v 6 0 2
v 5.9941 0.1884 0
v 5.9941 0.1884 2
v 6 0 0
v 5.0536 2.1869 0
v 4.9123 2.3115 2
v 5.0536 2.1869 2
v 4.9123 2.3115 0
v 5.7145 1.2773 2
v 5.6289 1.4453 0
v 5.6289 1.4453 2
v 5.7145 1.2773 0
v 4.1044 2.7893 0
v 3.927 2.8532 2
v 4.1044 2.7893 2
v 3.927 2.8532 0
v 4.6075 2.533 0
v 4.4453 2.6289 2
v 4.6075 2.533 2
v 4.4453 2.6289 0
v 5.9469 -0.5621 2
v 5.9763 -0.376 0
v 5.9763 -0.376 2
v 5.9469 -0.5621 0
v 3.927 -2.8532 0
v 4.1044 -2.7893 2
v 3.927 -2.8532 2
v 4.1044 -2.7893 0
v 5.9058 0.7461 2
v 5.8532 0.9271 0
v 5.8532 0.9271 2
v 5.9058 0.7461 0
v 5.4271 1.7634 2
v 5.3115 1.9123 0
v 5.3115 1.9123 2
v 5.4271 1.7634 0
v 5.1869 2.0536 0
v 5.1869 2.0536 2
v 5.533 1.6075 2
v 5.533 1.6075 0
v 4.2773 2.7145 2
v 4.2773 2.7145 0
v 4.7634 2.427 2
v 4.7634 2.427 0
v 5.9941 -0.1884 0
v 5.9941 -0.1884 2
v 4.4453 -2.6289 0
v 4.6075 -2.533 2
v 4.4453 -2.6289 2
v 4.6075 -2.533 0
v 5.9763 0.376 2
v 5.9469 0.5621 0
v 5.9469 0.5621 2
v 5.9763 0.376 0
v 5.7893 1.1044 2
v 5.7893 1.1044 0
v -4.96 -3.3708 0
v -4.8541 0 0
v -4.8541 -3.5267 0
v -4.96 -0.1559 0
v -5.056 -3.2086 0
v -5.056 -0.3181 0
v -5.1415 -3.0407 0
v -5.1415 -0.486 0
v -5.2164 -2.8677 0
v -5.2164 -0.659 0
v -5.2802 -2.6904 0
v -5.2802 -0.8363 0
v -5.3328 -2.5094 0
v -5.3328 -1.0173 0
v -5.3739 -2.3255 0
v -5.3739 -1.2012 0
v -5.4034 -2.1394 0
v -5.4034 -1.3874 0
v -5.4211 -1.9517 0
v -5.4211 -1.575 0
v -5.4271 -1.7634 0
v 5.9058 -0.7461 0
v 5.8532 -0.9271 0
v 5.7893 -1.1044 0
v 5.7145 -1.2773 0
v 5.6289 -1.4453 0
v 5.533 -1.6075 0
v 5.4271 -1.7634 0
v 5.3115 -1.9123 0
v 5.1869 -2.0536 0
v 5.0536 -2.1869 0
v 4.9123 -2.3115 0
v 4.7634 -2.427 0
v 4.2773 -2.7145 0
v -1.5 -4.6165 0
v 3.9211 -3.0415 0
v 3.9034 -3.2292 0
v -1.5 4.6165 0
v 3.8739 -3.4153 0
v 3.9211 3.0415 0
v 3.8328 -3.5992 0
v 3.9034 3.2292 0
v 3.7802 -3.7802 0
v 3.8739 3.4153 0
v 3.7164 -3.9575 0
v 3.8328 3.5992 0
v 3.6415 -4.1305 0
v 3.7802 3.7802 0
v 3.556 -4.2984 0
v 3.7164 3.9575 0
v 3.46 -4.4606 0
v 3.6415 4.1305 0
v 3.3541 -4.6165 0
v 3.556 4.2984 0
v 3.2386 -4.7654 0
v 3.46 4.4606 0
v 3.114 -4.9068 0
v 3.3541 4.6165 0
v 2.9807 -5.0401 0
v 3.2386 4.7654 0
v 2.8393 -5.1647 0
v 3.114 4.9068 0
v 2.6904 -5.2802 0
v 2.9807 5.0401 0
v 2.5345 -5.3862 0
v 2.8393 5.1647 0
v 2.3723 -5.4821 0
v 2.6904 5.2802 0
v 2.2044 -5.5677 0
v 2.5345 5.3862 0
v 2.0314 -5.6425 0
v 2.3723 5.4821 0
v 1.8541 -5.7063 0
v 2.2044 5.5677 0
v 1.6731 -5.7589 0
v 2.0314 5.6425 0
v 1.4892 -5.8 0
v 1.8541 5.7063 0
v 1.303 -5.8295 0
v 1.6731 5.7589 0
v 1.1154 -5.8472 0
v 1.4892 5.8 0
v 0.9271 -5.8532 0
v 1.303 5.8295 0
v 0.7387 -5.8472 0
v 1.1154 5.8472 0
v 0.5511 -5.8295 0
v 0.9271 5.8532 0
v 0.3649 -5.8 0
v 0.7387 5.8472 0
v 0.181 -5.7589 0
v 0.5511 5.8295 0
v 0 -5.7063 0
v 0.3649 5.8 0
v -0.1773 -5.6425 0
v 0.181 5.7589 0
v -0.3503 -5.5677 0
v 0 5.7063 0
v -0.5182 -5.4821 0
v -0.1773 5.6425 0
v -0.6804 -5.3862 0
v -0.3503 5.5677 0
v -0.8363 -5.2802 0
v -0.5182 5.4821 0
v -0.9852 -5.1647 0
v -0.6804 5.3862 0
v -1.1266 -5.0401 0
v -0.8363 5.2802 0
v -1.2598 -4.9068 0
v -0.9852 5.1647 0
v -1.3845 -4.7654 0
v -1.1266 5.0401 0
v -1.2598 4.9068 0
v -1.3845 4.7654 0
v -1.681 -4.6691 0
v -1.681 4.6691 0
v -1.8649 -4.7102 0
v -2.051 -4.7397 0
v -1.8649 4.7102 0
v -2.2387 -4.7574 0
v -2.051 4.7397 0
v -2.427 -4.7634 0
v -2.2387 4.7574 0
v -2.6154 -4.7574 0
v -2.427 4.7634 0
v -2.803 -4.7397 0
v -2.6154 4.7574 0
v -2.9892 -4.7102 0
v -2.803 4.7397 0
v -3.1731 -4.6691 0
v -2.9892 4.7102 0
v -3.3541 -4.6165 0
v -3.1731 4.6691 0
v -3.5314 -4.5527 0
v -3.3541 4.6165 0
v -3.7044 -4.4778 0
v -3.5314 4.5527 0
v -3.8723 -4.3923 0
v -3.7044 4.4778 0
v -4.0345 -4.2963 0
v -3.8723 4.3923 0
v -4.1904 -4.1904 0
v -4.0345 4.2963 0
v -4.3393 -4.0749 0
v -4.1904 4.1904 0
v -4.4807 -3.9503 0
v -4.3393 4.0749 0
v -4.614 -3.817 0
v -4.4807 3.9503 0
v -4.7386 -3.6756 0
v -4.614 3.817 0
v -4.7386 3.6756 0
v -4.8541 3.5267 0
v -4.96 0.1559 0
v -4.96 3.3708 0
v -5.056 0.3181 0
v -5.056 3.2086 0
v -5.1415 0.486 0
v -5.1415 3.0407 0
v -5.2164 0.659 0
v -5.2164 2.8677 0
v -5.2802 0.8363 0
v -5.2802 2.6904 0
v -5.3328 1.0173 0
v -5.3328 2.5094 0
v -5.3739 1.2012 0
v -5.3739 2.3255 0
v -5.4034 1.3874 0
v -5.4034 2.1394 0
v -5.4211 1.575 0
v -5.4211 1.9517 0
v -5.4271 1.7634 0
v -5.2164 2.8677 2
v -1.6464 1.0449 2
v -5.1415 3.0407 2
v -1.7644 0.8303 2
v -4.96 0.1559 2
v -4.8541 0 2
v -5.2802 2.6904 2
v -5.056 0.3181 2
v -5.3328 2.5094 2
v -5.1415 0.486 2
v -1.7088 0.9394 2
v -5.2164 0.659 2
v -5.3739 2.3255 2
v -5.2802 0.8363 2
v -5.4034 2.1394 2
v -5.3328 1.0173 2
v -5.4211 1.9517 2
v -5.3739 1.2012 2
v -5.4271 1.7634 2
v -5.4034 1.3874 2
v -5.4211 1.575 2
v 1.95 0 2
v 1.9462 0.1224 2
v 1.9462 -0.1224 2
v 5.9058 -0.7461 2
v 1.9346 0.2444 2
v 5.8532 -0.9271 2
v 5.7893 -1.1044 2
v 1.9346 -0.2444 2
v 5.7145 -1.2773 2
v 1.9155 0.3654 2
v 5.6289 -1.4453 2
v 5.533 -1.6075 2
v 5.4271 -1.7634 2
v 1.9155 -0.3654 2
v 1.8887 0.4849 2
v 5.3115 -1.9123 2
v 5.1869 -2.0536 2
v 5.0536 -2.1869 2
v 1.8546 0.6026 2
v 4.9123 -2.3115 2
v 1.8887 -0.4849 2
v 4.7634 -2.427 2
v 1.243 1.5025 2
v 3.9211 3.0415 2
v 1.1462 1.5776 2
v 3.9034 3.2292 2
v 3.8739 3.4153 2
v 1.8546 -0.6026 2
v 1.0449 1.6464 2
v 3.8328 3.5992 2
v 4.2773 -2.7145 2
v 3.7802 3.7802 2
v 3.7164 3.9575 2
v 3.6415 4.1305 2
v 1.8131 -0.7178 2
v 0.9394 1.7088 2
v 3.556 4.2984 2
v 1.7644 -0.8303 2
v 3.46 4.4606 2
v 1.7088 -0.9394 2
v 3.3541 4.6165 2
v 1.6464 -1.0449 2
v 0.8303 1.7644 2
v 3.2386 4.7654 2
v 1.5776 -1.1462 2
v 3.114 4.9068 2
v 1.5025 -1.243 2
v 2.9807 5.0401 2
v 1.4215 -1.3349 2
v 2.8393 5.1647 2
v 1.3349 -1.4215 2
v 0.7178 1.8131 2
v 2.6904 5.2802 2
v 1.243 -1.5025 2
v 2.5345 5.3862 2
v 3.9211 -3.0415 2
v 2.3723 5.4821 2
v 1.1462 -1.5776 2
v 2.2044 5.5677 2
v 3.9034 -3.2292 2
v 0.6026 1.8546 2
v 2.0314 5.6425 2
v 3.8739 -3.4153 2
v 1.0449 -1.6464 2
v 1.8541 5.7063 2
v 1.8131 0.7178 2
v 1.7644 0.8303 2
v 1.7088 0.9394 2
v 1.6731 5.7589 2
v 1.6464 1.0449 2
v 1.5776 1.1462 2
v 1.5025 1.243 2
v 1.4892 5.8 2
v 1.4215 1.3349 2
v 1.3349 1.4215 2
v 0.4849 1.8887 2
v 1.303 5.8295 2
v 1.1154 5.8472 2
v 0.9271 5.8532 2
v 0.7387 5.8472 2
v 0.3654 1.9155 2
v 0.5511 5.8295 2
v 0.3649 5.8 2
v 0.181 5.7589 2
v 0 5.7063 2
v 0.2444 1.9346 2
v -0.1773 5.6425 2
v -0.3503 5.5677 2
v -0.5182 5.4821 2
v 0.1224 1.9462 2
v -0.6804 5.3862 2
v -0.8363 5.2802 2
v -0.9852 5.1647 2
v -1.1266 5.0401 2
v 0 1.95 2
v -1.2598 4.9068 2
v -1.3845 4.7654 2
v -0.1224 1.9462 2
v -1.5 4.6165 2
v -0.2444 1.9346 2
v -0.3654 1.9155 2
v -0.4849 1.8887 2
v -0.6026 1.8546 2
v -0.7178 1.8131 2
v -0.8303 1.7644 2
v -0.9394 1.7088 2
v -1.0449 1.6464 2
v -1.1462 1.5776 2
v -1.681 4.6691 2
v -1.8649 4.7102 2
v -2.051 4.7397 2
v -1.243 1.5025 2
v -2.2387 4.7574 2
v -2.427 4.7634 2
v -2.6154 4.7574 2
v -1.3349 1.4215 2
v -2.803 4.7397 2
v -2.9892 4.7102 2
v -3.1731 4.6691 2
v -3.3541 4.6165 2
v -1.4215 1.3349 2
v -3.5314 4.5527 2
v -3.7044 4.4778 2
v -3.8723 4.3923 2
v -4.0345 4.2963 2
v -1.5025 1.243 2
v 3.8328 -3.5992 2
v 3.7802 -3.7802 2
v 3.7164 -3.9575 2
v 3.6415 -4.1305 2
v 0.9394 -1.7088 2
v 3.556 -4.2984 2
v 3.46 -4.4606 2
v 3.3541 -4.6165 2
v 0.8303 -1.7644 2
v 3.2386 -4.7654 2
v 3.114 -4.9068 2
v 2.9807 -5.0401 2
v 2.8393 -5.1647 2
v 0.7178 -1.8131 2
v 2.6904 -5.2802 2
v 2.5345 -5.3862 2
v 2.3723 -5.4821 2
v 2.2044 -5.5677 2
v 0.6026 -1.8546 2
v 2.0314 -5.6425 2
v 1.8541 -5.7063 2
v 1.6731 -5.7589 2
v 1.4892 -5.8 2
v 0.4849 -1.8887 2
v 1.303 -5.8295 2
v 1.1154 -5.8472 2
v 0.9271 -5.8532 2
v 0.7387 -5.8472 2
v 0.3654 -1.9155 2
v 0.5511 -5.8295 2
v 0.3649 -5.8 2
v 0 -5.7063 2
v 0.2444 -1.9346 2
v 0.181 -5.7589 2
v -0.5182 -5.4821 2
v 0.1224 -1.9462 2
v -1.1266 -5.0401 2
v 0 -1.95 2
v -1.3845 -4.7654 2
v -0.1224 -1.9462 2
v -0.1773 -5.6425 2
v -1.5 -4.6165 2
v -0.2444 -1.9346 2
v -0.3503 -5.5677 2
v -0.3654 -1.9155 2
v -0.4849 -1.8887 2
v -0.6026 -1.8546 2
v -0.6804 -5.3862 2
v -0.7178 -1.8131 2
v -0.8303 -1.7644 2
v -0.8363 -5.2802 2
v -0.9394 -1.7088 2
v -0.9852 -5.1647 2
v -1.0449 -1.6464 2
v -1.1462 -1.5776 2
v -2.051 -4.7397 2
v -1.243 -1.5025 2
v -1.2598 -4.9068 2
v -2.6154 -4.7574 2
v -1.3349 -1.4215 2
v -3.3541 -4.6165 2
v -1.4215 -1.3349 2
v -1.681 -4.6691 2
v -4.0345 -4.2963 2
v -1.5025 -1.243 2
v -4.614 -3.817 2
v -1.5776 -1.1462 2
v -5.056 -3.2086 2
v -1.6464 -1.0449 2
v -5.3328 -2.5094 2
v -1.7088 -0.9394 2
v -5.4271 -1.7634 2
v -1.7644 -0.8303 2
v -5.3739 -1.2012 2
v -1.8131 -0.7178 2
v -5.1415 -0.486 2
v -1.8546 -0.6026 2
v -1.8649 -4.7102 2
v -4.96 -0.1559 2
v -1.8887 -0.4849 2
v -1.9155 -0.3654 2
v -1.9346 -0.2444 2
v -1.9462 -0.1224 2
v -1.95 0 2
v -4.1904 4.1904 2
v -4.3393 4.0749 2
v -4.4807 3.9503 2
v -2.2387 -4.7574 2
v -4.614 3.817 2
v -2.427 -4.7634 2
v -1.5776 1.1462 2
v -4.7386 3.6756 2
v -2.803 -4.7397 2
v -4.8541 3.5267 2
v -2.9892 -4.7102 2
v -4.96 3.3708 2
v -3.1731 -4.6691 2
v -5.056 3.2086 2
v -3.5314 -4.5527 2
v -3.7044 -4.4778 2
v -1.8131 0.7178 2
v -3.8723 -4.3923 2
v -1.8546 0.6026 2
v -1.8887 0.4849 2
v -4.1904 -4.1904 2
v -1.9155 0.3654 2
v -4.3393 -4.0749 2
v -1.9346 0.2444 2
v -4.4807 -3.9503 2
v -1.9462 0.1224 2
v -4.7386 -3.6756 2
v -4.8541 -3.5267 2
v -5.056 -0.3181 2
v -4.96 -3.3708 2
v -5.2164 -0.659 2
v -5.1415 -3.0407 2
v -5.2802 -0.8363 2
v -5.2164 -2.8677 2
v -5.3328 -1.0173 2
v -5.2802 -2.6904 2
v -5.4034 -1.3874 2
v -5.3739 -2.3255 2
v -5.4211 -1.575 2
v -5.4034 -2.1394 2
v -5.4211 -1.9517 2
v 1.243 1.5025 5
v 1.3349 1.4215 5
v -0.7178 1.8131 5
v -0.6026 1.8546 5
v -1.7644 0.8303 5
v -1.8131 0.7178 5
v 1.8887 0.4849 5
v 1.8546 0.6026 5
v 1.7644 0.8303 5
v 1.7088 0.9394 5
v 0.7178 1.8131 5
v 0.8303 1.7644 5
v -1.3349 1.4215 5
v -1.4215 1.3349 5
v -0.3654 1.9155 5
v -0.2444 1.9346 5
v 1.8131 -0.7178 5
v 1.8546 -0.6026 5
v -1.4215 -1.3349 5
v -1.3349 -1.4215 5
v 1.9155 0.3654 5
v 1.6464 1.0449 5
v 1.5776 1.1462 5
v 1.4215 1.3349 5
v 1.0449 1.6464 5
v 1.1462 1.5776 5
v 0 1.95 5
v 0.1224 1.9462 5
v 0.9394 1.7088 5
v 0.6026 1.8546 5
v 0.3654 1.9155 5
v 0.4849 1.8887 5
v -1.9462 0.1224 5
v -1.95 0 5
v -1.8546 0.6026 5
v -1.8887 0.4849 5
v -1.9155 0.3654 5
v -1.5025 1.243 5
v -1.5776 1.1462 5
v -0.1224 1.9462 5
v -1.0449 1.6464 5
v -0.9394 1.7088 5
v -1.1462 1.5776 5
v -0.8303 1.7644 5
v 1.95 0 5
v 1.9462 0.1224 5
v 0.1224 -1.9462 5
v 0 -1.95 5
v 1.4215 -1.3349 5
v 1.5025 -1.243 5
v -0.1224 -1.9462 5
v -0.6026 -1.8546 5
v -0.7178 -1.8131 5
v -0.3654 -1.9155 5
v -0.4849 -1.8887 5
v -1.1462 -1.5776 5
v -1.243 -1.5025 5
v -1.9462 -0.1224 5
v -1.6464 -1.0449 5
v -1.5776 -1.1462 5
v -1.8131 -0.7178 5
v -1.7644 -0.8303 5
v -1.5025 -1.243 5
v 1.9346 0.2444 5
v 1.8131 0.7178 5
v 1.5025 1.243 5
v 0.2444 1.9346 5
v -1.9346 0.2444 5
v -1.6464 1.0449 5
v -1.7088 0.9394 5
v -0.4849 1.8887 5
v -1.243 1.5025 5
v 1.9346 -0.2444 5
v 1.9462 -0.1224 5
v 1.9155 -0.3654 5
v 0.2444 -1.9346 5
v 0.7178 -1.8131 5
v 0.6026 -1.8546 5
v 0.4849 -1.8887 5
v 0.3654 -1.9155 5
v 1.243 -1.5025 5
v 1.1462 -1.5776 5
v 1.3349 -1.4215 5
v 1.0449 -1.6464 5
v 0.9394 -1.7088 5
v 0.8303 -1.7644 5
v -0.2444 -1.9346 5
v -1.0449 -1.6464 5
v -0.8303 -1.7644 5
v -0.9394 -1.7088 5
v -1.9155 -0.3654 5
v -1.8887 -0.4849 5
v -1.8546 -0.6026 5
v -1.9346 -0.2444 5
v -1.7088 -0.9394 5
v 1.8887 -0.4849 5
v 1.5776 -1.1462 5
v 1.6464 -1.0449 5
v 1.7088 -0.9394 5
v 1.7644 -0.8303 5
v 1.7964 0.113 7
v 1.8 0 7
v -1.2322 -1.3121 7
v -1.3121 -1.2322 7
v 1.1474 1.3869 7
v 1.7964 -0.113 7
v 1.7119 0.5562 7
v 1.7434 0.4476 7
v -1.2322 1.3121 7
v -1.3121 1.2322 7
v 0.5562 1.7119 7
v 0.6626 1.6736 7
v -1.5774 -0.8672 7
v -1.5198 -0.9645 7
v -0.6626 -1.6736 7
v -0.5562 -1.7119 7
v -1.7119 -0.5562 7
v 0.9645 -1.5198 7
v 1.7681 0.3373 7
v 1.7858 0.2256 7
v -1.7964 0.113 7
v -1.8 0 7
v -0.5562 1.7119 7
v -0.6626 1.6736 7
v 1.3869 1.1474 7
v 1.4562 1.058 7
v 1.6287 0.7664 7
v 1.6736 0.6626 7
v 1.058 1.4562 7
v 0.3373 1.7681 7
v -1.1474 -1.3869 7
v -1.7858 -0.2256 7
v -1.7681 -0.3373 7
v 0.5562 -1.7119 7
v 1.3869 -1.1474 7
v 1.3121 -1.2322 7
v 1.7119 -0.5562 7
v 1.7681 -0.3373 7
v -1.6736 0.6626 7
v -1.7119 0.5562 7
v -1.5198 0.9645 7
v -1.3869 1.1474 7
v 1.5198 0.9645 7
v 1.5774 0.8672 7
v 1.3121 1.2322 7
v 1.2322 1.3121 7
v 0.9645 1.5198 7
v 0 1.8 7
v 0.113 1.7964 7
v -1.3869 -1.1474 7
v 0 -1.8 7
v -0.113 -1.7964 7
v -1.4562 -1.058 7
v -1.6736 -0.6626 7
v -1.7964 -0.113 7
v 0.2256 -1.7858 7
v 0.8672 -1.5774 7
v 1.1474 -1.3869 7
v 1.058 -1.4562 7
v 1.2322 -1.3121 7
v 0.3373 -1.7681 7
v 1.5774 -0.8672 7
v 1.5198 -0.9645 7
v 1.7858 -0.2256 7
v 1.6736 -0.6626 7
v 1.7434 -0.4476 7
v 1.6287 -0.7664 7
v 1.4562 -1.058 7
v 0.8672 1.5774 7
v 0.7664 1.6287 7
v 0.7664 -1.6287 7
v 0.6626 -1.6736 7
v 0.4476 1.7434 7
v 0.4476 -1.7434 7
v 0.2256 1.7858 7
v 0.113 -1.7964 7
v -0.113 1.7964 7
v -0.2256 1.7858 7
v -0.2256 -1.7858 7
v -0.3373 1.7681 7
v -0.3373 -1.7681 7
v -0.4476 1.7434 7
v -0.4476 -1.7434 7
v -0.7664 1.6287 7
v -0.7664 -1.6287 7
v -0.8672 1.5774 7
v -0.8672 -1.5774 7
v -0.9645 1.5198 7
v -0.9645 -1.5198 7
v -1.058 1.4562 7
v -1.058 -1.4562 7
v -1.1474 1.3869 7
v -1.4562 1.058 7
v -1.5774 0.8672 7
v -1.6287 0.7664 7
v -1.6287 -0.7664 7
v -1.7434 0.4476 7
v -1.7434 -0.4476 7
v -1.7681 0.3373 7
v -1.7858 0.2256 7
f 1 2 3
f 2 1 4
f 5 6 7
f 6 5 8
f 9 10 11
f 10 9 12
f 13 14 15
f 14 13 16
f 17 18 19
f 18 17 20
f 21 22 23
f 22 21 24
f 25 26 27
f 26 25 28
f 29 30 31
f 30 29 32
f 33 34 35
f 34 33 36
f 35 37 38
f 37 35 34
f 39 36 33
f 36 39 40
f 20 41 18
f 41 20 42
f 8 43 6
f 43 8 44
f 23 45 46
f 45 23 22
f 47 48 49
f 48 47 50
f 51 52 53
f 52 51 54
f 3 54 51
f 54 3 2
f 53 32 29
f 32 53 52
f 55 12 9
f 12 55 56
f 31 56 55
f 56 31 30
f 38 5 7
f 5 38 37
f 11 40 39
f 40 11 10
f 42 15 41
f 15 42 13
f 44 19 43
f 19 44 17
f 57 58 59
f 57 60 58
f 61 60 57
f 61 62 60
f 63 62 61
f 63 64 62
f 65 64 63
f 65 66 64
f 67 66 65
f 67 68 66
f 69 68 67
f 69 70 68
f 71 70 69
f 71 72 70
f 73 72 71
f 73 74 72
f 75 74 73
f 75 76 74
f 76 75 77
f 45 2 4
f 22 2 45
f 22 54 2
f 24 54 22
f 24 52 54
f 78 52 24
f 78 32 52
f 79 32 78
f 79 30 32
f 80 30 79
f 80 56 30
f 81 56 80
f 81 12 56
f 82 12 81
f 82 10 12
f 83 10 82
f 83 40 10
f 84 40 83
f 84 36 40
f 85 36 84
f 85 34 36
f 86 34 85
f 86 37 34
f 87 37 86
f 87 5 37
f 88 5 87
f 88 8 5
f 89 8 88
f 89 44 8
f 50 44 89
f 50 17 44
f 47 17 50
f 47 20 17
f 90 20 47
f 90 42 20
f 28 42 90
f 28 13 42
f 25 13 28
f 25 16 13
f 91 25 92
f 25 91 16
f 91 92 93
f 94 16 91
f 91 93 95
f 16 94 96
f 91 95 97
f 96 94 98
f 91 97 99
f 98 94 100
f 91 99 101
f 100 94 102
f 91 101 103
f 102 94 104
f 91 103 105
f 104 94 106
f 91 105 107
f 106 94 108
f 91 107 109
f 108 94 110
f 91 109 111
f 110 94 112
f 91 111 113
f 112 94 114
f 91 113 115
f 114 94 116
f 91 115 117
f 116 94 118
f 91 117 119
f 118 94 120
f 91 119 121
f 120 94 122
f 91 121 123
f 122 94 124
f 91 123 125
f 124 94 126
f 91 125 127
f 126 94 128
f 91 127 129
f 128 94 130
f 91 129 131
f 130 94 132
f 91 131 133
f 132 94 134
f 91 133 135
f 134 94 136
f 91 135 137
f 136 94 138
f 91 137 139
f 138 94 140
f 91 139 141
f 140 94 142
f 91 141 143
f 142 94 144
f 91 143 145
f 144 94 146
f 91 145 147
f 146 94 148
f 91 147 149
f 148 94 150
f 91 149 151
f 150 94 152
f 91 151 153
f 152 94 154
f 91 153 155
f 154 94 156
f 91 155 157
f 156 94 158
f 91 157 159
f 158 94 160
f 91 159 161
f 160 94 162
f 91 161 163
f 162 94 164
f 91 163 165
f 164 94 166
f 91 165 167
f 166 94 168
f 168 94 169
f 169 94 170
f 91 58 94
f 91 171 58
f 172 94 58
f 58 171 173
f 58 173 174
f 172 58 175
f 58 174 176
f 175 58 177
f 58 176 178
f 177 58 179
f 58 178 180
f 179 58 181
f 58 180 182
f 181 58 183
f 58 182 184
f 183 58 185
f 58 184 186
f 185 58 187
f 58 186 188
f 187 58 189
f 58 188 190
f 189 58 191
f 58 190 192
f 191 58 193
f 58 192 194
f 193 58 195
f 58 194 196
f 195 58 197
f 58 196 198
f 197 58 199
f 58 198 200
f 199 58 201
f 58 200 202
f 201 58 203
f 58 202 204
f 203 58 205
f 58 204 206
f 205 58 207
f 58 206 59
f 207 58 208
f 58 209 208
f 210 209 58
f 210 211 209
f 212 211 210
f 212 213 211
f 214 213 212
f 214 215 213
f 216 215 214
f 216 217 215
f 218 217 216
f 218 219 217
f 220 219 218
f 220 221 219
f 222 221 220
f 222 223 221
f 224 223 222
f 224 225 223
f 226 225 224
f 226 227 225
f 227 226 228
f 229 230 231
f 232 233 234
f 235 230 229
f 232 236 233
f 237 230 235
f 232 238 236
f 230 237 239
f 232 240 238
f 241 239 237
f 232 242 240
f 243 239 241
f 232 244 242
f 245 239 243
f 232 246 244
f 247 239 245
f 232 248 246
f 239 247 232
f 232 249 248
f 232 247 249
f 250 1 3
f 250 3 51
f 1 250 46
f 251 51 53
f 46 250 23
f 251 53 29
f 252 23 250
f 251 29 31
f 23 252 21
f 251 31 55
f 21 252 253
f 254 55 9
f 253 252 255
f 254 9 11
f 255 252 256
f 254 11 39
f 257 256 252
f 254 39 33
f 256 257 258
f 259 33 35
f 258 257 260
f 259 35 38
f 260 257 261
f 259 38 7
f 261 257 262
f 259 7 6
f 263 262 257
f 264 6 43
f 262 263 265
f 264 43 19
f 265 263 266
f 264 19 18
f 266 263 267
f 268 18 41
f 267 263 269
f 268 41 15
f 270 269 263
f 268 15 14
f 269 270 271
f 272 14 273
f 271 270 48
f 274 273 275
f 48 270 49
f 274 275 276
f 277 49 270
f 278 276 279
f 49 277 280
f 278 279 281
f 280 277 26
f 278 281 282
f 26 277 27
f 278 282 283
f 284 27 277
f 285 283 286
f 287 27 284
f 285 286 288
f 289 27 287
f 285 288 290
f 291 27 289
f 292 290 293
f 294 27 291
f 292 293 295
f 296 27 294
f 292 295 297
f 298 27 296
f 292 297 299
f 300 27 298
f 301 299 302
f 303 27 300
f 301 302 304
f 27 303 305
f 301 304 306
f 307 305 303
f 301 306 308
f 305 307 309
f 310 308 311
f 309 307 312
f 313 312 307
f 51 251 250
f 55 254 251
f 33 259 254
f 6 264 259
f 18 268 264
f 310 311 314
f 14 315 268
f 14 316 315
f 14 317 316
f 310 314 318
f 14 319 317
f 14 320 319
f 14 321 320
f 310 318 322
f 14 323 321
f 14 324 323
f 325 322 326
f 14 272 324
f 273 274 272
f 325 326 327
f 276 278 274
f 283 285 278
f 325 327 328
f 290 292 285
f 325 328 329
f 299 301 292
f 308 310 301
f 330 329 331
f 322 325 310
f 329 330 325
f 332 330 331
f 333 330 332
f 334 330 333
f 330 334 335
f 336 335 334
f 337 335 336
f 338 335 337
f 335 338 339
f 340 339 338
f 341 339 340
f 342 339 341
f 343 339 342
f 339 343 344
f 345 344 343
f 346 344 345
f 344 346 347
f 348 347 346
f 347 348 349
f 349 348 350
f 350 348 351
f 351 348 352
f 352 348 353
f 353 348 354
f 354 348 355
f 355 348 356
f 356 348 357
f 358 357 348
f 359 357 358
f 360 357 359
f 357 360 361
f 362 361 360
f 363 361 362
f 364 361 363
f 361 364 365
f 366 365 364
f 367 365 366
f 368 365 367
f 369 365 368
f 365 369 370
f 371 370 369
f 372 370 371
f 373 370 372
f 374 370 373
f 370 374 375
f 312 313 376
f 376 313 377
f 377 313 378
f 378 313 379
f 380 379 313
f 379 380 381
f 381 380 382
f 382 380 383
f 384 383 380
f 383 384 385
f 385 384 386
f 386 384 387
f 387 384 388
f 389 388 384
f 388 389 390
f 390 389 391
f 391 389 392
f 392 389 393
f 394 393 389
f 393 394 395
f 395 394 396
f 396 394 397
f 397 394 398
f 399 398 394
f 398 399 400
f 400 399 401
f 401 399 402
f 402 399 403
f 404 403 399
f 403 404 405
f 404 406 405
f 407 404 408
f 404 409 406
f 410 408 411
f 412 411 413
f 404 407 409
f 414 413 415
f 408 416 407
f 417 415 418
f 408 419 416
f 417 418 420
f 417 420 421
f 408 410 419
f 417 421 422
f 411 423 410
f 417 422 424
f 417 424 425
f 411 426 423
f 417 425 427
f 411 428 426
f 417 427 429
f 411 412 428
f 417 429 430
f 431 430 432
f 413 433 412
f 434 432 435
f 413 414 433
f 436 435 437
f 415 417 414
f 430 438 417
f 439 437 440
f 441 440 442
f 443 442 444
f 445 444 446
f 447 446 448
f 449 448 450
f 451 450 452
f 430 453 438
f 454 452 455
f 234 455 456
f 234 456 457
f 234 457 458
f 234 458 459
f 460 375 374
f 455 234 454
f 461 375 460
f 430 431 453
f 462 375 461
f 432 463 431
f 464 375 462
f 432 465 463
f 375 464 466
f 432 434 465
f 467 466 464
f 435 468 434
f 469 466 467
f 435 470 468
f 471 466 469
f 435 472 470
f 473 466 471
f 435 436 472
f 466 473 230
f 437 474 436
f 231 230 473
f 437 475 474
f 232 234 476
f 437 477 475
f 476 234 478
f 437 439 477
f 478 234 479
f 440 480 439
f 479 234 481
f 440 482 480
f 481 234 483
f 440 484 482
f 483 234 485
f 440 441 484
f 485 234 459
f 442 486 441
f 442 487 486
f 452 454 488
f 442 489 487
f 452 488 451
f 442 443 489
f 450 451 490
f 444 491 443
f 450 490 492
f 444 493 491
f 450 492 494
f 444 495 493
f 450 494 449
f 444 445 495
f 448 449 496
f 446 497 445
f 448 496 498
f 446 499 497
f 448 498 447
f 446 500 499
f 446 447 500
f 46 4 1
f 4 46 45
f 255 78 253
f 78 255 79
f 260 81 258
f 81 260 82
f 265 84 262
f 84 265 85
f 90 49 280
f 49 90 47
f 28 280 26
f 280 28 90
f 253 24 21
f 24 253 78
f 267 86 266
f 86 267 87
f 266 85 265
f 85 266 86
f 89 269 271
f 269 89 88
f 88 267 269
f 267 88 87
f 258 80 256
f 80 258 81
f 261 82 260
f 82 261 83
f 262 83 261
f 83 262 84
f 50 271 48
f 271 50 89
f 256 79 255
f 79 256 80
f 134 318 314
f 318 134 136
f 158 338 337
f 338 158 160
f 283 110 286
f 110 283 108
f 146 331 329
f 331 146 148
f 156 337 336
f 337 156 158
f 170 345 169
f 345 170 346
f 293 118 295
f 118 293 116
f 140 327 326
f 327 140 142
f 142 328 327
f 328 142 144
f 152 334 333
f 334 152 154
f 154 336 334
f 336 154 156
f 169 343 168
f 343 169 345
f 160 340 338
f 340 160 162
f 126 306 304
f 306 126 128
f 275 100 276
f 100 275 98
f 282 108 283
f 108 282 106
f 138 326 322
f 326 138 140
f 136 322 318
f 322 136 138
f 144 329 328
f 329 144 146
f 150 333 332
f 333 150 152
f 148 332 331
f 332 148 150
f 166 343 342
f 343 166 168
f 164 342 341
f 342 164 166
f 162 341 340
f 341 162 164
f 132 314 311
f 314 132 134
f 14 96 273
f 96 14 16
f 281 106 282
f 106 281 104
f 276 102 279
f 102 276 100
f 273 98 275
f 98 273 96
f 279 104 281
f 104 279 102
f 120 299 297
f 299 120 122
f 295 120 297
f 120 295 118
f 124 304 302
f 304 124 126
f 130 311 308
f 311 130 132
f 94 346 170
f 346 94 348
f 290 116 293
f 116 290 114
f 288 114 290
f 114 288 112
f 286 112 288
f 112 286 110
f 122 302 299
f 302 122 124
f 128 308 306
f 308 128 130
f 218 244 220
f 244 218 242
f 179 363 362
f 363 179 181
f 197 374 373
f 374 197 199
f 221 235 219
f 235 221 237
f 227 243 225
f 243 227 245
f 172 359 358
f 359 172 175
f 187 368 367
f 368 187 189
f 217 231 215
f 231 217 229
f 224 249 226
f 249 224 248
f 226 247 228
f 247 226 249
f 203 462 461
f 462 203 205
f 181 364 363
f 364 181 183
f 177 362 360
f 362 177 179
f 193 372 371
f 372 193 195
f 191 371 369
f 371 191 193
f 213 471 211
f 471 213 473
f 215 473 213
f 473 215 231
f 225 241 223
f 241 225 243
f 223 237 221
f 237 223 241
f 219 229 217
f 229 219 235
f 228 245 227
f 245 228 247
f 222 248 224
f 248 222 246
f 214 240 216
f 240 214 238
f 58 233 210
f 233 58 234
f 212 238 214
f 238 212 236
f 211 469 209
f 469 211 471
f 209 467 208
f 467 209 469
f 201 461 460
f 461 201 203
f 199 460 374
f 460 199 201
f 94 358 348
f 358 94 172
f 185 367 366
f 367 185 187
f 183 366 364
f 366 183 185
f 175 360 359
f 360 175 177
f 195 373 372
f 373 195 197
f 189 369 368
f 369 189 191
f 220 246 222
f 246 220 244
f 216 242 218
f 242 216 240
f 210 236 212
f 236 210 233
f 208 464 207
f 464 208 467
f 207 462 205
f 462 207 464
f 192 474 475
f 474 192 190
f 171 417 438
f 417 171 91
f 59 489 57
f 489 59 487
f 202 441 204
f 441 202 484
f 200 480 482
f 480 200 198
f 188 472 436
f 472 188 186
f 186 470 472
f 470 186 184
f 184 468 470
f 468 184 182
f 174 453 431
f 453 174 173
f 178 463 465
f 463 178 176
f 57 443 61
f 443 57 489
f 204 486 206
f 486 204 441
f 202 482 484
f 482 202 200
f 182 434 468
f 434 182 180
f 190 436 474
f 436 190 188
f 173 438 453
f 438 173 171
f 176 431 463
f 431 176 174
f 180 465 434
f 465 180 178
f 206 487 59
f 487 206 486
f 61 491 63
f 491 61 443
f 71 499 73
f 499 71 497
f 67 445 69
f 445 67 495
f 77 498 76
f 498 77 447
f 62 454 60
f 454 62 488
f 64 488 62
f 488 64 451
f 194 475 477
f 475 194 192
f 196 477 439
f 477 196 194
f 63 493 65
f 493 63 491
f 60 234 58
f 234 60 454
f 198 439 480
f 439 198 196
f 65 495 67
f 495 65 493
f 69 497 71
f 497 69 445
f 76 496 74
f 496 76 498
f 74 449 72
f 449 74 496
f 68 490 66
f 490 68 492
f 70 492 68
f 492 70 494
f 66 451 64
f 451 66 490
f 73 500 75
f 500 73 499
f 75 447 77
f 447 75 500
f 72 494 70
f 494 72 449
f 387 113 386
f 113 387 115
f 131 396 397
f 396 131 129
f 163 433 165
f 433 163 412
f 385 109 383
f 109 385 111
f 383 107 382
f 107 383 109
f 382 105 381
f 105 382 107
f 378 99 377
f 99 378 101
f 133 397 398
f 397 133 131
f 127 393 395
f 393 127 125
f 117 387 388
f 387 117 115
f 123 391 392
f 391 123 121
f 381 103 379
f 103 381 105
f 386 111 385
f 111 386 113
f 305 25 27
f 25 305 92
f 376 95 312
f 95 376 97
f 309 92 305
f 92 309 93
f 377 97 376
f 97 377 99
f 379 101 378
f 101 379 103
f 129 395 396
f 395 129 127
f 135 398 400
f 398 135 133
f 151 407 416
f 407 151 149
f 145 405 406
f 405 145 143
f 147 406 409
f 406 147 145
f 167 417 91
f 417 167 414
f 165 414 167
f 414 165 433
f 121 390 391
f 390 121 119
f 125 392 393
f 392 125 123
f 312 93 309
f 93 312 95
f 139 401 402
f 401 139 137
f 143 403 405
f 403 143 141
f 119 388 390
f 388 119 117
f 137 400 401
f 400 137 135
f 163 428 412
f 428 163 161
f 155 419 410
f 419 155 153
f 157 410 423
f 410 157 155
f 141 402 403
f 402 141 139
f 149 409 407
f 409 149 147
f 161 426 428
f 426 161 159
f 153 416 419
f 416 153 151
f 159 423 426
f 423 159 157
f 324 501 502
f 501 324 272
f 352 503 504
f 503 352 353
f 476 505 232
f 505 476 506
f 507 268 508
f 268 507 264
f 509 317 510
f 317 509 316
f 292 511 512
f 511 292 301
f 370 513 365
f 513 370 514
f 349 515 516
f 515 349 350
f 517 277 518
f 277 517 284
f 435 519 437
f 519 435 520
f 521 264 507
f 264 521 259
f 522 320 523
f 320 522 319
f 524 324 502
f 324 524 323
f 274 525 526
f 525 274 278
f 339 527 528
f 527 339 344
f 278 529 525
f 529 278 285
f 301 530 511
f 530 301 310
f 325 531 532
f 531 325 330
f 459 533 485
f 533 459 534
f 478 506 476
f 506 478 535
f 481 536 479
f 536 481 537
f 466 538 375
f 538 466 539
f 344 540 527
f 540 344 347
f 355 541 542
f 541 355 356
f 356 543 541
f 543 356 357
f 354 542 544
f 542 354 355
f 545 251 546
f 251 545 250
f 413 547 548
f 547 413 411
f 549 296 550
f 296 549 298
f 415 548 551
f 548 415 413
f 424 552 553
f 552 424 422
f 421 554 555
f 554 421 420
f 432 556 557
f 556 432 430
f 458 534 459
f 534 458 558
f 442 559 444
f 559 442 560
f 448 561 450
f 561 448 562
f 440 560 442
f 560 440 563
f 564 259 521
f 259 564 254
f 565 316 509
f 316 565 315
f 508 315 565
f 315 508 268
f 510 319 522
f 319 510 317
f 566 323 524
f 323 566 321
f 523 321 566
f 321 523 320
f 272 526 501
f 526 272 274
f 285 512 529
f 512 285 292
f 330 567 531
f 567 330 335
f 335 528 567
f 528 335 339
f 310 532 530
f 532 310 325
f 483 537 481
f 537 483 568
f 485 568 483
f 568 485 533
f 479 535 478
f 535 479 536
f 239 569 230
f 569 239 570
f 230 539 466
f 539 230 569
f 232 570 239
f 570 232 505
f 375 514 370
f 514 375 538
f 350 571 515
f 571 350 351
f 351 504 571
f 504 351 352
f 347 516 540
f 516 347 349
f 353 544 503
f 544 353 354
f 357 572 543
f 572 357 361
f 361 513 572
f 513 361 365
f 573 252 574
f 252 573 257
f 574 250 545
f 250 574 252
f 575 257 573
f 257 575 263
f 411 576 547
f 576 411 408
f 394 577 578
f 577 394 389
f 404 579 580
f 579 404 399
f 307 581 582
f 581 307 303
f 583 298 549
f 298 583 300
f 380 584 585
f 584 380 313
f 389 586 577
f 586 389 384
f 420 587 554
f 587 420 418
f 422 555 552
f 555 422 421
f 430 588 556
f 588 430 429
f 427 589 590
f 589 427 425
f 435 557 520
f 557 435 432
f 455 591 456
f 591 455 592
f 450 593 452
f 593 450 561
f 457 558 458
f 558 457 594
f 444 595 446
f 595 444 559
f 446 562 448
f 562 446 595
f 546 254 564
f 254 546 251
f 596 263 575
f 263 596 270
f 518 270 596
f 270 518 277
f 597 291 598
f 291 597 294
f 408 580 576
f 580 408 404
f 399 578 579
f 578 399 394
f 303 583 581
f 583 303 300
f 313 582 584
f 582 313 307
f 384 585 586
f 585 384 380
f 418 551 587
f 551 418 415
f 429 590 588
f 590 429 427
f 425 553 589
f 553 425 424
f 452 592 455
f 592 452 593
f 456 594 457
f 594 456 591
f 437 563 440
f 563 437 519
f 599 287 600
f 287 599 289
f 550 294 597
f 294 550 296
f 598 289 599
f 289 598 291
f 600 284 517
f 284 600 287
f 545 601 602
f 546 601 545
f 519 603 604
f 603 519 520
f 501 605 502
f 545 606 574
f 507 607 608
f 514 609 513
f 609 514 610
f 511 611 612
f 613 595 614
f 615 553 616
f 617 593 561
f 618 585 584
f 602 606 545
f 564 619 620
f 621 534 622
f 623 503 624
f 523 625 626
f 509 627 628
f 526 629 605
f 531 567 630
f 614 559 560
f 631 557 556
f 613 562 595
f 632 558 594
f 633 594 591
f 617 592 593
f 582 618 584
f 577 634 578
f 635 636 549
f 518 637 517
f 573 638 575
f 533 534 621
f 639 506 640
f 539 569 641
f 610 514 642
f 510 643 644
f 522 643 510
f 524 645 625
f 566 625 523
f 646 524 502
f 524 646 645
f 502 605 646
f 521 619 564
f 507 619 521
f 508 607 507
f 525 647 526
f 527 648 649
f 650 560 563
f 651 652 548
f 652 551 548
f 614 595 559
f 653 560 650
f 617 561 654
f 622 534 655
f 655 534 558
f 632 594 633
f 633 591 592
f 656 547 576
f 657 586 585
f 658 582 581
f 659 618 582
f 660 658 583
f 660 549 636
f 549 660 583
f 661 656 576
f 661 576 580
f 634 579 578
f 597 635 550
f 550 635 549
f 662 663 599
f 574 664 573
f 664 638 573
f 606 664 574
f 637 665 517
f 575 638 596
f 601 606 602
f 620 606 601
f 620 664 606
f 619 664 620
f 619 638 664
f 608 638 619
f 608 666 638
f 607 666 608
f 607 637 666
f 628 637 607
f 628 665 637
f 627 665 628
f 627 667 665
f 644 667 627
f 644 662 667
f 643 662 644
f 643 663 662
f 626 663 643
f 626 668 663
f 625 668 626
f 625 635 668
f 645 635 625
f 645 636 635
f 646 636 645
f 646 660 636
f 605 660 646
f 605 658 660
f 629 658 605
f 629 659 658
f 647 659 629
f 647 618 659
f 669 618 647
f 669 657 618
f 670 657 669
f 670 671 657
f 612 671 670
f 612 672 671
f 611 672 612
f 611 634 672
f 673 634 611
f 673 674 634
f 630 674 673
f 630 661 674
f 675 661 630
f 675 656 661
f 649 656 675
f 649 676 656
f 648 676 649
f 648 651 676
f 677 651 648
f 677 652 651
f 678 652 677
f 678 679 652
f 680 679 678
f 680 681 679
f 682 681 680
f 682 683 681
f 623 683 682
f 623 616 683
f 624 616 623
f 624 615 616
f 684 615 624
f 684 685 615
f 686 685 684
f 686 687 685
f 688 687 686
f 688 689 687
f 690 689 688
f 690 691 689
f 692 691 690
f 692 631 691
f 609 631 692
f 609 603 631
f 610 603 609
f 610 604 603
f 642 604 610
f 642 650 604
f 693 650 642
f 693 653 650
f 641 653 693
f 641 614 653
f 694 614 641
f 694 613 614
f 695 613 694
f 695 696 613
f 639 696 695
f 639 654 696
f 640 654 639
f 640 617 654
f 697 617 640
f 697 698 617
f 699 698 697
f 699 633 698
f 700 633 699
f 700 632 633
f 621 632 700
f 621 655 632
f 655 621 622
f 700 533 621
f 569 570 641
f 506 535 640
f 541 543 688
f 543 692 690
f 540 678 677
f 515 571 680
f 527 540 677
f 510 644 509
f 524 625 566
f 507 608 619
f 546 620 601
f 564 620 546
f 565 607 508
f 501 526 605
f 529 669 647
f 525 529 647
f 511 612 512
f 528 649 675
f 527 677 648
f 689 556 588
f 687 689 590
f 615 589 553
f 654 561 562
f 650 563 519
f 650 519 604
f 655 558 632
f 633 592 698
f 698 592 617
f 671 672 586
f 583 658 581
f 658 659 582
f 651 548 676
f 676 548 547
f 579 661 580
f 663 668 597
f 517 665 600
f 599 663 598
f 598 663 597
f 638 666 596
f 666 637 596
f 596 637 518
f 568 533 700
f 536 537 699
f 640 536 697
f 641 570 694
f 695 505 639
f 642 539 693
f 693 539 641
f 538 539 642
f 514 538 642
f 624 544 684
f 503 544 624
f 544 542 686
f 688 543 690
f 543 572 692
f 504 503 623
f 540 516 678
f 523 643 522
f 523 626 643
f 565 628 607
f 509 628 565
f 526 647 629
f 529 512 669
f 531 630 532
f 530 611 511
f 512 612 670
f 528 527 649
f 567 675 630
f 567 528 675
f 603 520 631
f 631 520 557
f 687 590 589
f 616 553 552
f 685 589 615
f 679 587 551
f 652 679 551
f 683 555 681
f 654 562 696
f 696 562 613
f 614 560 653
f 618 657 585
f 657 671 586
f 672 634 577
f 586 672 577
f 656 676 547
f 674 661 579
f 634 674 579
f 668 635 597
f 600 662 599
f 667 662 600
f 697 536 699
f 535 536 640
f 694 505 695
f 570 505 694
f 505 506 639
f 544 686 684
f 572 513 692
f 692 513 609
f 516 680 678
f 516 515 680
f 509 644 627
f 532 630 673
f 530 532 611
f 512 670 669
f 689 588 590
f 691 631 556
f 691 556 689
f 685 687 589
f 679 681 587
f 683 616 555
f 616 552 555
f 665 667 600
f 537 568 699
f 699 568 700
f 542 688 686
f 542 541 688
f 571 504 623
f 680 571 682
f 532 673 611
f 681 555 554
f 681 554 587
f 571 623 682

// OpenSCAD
// Lock Flower
//
// Copyright (c) 2020 Jan Pieper (jhpieper.github@gmail.com)
//
// This code is hosted at github.com/jhpieper/marble-run under the MIT license.
// The 3D objects (STL files) are also hosted on thingiverse.com under
// the Creative Commons Attribution 4.0 International (CC BY 4.0) license.
//
// Permission is hereby granted, free of charge, to any person obtaining a copy
// of this software and associated documentation files (the "Software"), to
// deal in the Software without restriction, including without limitation the
// rights to use, copy, modify, merge, publish, distribute, sublicense, and/or
// sell copies of the Software, and to permit persons to whom the Software is
// furnished to do so, subject to the following conditions:
//
// The above copyright notice and this permission notice shall be included in
// all copies or substantial portions of the Software.
//
// THE SOFTWARE IS PROVIDED "AS IS", WITHOUT WARRANTY OF ANY KIND, EXPRESS OR
// IMPLIED, INCLUDING BUT NOT LIMITED TO THE WARRANTIES OF MERCHANTABILITY,
// FITNESS FOR A PARTICULAR PURPOSE AND NONINFRINGEMENT. IN NO EVENT SHALL THE
// AUTHORS OR COPYRIGHT HOLDERS BE LIABLE FOR ANY CLAIM, DAMAGES OR OTHER
// LIABILITY, WHETHER IN AN ACTION OF CONTRACT, TORT OR OTHERWISE, ARISING
// FROM, OUT OF OR IN CONNECTION WITH THE SOFTWARE OR THE USE OR OTHER DEALINGS
// IN THE SOFTWARE.

$fn=100;

union() {
  for (a=[0:360/5:360]) {
    rotate([0,0,a]) translate([3,0,0]) cylinder(h=2, r=3);
  }
  // color("#000000") cylinder(h=2, r=5);
  cylinder(h=5, r=1.95);
  translate([0,0,5]) cylinder(h=2, r1=1.95, r2=1.8);
}
